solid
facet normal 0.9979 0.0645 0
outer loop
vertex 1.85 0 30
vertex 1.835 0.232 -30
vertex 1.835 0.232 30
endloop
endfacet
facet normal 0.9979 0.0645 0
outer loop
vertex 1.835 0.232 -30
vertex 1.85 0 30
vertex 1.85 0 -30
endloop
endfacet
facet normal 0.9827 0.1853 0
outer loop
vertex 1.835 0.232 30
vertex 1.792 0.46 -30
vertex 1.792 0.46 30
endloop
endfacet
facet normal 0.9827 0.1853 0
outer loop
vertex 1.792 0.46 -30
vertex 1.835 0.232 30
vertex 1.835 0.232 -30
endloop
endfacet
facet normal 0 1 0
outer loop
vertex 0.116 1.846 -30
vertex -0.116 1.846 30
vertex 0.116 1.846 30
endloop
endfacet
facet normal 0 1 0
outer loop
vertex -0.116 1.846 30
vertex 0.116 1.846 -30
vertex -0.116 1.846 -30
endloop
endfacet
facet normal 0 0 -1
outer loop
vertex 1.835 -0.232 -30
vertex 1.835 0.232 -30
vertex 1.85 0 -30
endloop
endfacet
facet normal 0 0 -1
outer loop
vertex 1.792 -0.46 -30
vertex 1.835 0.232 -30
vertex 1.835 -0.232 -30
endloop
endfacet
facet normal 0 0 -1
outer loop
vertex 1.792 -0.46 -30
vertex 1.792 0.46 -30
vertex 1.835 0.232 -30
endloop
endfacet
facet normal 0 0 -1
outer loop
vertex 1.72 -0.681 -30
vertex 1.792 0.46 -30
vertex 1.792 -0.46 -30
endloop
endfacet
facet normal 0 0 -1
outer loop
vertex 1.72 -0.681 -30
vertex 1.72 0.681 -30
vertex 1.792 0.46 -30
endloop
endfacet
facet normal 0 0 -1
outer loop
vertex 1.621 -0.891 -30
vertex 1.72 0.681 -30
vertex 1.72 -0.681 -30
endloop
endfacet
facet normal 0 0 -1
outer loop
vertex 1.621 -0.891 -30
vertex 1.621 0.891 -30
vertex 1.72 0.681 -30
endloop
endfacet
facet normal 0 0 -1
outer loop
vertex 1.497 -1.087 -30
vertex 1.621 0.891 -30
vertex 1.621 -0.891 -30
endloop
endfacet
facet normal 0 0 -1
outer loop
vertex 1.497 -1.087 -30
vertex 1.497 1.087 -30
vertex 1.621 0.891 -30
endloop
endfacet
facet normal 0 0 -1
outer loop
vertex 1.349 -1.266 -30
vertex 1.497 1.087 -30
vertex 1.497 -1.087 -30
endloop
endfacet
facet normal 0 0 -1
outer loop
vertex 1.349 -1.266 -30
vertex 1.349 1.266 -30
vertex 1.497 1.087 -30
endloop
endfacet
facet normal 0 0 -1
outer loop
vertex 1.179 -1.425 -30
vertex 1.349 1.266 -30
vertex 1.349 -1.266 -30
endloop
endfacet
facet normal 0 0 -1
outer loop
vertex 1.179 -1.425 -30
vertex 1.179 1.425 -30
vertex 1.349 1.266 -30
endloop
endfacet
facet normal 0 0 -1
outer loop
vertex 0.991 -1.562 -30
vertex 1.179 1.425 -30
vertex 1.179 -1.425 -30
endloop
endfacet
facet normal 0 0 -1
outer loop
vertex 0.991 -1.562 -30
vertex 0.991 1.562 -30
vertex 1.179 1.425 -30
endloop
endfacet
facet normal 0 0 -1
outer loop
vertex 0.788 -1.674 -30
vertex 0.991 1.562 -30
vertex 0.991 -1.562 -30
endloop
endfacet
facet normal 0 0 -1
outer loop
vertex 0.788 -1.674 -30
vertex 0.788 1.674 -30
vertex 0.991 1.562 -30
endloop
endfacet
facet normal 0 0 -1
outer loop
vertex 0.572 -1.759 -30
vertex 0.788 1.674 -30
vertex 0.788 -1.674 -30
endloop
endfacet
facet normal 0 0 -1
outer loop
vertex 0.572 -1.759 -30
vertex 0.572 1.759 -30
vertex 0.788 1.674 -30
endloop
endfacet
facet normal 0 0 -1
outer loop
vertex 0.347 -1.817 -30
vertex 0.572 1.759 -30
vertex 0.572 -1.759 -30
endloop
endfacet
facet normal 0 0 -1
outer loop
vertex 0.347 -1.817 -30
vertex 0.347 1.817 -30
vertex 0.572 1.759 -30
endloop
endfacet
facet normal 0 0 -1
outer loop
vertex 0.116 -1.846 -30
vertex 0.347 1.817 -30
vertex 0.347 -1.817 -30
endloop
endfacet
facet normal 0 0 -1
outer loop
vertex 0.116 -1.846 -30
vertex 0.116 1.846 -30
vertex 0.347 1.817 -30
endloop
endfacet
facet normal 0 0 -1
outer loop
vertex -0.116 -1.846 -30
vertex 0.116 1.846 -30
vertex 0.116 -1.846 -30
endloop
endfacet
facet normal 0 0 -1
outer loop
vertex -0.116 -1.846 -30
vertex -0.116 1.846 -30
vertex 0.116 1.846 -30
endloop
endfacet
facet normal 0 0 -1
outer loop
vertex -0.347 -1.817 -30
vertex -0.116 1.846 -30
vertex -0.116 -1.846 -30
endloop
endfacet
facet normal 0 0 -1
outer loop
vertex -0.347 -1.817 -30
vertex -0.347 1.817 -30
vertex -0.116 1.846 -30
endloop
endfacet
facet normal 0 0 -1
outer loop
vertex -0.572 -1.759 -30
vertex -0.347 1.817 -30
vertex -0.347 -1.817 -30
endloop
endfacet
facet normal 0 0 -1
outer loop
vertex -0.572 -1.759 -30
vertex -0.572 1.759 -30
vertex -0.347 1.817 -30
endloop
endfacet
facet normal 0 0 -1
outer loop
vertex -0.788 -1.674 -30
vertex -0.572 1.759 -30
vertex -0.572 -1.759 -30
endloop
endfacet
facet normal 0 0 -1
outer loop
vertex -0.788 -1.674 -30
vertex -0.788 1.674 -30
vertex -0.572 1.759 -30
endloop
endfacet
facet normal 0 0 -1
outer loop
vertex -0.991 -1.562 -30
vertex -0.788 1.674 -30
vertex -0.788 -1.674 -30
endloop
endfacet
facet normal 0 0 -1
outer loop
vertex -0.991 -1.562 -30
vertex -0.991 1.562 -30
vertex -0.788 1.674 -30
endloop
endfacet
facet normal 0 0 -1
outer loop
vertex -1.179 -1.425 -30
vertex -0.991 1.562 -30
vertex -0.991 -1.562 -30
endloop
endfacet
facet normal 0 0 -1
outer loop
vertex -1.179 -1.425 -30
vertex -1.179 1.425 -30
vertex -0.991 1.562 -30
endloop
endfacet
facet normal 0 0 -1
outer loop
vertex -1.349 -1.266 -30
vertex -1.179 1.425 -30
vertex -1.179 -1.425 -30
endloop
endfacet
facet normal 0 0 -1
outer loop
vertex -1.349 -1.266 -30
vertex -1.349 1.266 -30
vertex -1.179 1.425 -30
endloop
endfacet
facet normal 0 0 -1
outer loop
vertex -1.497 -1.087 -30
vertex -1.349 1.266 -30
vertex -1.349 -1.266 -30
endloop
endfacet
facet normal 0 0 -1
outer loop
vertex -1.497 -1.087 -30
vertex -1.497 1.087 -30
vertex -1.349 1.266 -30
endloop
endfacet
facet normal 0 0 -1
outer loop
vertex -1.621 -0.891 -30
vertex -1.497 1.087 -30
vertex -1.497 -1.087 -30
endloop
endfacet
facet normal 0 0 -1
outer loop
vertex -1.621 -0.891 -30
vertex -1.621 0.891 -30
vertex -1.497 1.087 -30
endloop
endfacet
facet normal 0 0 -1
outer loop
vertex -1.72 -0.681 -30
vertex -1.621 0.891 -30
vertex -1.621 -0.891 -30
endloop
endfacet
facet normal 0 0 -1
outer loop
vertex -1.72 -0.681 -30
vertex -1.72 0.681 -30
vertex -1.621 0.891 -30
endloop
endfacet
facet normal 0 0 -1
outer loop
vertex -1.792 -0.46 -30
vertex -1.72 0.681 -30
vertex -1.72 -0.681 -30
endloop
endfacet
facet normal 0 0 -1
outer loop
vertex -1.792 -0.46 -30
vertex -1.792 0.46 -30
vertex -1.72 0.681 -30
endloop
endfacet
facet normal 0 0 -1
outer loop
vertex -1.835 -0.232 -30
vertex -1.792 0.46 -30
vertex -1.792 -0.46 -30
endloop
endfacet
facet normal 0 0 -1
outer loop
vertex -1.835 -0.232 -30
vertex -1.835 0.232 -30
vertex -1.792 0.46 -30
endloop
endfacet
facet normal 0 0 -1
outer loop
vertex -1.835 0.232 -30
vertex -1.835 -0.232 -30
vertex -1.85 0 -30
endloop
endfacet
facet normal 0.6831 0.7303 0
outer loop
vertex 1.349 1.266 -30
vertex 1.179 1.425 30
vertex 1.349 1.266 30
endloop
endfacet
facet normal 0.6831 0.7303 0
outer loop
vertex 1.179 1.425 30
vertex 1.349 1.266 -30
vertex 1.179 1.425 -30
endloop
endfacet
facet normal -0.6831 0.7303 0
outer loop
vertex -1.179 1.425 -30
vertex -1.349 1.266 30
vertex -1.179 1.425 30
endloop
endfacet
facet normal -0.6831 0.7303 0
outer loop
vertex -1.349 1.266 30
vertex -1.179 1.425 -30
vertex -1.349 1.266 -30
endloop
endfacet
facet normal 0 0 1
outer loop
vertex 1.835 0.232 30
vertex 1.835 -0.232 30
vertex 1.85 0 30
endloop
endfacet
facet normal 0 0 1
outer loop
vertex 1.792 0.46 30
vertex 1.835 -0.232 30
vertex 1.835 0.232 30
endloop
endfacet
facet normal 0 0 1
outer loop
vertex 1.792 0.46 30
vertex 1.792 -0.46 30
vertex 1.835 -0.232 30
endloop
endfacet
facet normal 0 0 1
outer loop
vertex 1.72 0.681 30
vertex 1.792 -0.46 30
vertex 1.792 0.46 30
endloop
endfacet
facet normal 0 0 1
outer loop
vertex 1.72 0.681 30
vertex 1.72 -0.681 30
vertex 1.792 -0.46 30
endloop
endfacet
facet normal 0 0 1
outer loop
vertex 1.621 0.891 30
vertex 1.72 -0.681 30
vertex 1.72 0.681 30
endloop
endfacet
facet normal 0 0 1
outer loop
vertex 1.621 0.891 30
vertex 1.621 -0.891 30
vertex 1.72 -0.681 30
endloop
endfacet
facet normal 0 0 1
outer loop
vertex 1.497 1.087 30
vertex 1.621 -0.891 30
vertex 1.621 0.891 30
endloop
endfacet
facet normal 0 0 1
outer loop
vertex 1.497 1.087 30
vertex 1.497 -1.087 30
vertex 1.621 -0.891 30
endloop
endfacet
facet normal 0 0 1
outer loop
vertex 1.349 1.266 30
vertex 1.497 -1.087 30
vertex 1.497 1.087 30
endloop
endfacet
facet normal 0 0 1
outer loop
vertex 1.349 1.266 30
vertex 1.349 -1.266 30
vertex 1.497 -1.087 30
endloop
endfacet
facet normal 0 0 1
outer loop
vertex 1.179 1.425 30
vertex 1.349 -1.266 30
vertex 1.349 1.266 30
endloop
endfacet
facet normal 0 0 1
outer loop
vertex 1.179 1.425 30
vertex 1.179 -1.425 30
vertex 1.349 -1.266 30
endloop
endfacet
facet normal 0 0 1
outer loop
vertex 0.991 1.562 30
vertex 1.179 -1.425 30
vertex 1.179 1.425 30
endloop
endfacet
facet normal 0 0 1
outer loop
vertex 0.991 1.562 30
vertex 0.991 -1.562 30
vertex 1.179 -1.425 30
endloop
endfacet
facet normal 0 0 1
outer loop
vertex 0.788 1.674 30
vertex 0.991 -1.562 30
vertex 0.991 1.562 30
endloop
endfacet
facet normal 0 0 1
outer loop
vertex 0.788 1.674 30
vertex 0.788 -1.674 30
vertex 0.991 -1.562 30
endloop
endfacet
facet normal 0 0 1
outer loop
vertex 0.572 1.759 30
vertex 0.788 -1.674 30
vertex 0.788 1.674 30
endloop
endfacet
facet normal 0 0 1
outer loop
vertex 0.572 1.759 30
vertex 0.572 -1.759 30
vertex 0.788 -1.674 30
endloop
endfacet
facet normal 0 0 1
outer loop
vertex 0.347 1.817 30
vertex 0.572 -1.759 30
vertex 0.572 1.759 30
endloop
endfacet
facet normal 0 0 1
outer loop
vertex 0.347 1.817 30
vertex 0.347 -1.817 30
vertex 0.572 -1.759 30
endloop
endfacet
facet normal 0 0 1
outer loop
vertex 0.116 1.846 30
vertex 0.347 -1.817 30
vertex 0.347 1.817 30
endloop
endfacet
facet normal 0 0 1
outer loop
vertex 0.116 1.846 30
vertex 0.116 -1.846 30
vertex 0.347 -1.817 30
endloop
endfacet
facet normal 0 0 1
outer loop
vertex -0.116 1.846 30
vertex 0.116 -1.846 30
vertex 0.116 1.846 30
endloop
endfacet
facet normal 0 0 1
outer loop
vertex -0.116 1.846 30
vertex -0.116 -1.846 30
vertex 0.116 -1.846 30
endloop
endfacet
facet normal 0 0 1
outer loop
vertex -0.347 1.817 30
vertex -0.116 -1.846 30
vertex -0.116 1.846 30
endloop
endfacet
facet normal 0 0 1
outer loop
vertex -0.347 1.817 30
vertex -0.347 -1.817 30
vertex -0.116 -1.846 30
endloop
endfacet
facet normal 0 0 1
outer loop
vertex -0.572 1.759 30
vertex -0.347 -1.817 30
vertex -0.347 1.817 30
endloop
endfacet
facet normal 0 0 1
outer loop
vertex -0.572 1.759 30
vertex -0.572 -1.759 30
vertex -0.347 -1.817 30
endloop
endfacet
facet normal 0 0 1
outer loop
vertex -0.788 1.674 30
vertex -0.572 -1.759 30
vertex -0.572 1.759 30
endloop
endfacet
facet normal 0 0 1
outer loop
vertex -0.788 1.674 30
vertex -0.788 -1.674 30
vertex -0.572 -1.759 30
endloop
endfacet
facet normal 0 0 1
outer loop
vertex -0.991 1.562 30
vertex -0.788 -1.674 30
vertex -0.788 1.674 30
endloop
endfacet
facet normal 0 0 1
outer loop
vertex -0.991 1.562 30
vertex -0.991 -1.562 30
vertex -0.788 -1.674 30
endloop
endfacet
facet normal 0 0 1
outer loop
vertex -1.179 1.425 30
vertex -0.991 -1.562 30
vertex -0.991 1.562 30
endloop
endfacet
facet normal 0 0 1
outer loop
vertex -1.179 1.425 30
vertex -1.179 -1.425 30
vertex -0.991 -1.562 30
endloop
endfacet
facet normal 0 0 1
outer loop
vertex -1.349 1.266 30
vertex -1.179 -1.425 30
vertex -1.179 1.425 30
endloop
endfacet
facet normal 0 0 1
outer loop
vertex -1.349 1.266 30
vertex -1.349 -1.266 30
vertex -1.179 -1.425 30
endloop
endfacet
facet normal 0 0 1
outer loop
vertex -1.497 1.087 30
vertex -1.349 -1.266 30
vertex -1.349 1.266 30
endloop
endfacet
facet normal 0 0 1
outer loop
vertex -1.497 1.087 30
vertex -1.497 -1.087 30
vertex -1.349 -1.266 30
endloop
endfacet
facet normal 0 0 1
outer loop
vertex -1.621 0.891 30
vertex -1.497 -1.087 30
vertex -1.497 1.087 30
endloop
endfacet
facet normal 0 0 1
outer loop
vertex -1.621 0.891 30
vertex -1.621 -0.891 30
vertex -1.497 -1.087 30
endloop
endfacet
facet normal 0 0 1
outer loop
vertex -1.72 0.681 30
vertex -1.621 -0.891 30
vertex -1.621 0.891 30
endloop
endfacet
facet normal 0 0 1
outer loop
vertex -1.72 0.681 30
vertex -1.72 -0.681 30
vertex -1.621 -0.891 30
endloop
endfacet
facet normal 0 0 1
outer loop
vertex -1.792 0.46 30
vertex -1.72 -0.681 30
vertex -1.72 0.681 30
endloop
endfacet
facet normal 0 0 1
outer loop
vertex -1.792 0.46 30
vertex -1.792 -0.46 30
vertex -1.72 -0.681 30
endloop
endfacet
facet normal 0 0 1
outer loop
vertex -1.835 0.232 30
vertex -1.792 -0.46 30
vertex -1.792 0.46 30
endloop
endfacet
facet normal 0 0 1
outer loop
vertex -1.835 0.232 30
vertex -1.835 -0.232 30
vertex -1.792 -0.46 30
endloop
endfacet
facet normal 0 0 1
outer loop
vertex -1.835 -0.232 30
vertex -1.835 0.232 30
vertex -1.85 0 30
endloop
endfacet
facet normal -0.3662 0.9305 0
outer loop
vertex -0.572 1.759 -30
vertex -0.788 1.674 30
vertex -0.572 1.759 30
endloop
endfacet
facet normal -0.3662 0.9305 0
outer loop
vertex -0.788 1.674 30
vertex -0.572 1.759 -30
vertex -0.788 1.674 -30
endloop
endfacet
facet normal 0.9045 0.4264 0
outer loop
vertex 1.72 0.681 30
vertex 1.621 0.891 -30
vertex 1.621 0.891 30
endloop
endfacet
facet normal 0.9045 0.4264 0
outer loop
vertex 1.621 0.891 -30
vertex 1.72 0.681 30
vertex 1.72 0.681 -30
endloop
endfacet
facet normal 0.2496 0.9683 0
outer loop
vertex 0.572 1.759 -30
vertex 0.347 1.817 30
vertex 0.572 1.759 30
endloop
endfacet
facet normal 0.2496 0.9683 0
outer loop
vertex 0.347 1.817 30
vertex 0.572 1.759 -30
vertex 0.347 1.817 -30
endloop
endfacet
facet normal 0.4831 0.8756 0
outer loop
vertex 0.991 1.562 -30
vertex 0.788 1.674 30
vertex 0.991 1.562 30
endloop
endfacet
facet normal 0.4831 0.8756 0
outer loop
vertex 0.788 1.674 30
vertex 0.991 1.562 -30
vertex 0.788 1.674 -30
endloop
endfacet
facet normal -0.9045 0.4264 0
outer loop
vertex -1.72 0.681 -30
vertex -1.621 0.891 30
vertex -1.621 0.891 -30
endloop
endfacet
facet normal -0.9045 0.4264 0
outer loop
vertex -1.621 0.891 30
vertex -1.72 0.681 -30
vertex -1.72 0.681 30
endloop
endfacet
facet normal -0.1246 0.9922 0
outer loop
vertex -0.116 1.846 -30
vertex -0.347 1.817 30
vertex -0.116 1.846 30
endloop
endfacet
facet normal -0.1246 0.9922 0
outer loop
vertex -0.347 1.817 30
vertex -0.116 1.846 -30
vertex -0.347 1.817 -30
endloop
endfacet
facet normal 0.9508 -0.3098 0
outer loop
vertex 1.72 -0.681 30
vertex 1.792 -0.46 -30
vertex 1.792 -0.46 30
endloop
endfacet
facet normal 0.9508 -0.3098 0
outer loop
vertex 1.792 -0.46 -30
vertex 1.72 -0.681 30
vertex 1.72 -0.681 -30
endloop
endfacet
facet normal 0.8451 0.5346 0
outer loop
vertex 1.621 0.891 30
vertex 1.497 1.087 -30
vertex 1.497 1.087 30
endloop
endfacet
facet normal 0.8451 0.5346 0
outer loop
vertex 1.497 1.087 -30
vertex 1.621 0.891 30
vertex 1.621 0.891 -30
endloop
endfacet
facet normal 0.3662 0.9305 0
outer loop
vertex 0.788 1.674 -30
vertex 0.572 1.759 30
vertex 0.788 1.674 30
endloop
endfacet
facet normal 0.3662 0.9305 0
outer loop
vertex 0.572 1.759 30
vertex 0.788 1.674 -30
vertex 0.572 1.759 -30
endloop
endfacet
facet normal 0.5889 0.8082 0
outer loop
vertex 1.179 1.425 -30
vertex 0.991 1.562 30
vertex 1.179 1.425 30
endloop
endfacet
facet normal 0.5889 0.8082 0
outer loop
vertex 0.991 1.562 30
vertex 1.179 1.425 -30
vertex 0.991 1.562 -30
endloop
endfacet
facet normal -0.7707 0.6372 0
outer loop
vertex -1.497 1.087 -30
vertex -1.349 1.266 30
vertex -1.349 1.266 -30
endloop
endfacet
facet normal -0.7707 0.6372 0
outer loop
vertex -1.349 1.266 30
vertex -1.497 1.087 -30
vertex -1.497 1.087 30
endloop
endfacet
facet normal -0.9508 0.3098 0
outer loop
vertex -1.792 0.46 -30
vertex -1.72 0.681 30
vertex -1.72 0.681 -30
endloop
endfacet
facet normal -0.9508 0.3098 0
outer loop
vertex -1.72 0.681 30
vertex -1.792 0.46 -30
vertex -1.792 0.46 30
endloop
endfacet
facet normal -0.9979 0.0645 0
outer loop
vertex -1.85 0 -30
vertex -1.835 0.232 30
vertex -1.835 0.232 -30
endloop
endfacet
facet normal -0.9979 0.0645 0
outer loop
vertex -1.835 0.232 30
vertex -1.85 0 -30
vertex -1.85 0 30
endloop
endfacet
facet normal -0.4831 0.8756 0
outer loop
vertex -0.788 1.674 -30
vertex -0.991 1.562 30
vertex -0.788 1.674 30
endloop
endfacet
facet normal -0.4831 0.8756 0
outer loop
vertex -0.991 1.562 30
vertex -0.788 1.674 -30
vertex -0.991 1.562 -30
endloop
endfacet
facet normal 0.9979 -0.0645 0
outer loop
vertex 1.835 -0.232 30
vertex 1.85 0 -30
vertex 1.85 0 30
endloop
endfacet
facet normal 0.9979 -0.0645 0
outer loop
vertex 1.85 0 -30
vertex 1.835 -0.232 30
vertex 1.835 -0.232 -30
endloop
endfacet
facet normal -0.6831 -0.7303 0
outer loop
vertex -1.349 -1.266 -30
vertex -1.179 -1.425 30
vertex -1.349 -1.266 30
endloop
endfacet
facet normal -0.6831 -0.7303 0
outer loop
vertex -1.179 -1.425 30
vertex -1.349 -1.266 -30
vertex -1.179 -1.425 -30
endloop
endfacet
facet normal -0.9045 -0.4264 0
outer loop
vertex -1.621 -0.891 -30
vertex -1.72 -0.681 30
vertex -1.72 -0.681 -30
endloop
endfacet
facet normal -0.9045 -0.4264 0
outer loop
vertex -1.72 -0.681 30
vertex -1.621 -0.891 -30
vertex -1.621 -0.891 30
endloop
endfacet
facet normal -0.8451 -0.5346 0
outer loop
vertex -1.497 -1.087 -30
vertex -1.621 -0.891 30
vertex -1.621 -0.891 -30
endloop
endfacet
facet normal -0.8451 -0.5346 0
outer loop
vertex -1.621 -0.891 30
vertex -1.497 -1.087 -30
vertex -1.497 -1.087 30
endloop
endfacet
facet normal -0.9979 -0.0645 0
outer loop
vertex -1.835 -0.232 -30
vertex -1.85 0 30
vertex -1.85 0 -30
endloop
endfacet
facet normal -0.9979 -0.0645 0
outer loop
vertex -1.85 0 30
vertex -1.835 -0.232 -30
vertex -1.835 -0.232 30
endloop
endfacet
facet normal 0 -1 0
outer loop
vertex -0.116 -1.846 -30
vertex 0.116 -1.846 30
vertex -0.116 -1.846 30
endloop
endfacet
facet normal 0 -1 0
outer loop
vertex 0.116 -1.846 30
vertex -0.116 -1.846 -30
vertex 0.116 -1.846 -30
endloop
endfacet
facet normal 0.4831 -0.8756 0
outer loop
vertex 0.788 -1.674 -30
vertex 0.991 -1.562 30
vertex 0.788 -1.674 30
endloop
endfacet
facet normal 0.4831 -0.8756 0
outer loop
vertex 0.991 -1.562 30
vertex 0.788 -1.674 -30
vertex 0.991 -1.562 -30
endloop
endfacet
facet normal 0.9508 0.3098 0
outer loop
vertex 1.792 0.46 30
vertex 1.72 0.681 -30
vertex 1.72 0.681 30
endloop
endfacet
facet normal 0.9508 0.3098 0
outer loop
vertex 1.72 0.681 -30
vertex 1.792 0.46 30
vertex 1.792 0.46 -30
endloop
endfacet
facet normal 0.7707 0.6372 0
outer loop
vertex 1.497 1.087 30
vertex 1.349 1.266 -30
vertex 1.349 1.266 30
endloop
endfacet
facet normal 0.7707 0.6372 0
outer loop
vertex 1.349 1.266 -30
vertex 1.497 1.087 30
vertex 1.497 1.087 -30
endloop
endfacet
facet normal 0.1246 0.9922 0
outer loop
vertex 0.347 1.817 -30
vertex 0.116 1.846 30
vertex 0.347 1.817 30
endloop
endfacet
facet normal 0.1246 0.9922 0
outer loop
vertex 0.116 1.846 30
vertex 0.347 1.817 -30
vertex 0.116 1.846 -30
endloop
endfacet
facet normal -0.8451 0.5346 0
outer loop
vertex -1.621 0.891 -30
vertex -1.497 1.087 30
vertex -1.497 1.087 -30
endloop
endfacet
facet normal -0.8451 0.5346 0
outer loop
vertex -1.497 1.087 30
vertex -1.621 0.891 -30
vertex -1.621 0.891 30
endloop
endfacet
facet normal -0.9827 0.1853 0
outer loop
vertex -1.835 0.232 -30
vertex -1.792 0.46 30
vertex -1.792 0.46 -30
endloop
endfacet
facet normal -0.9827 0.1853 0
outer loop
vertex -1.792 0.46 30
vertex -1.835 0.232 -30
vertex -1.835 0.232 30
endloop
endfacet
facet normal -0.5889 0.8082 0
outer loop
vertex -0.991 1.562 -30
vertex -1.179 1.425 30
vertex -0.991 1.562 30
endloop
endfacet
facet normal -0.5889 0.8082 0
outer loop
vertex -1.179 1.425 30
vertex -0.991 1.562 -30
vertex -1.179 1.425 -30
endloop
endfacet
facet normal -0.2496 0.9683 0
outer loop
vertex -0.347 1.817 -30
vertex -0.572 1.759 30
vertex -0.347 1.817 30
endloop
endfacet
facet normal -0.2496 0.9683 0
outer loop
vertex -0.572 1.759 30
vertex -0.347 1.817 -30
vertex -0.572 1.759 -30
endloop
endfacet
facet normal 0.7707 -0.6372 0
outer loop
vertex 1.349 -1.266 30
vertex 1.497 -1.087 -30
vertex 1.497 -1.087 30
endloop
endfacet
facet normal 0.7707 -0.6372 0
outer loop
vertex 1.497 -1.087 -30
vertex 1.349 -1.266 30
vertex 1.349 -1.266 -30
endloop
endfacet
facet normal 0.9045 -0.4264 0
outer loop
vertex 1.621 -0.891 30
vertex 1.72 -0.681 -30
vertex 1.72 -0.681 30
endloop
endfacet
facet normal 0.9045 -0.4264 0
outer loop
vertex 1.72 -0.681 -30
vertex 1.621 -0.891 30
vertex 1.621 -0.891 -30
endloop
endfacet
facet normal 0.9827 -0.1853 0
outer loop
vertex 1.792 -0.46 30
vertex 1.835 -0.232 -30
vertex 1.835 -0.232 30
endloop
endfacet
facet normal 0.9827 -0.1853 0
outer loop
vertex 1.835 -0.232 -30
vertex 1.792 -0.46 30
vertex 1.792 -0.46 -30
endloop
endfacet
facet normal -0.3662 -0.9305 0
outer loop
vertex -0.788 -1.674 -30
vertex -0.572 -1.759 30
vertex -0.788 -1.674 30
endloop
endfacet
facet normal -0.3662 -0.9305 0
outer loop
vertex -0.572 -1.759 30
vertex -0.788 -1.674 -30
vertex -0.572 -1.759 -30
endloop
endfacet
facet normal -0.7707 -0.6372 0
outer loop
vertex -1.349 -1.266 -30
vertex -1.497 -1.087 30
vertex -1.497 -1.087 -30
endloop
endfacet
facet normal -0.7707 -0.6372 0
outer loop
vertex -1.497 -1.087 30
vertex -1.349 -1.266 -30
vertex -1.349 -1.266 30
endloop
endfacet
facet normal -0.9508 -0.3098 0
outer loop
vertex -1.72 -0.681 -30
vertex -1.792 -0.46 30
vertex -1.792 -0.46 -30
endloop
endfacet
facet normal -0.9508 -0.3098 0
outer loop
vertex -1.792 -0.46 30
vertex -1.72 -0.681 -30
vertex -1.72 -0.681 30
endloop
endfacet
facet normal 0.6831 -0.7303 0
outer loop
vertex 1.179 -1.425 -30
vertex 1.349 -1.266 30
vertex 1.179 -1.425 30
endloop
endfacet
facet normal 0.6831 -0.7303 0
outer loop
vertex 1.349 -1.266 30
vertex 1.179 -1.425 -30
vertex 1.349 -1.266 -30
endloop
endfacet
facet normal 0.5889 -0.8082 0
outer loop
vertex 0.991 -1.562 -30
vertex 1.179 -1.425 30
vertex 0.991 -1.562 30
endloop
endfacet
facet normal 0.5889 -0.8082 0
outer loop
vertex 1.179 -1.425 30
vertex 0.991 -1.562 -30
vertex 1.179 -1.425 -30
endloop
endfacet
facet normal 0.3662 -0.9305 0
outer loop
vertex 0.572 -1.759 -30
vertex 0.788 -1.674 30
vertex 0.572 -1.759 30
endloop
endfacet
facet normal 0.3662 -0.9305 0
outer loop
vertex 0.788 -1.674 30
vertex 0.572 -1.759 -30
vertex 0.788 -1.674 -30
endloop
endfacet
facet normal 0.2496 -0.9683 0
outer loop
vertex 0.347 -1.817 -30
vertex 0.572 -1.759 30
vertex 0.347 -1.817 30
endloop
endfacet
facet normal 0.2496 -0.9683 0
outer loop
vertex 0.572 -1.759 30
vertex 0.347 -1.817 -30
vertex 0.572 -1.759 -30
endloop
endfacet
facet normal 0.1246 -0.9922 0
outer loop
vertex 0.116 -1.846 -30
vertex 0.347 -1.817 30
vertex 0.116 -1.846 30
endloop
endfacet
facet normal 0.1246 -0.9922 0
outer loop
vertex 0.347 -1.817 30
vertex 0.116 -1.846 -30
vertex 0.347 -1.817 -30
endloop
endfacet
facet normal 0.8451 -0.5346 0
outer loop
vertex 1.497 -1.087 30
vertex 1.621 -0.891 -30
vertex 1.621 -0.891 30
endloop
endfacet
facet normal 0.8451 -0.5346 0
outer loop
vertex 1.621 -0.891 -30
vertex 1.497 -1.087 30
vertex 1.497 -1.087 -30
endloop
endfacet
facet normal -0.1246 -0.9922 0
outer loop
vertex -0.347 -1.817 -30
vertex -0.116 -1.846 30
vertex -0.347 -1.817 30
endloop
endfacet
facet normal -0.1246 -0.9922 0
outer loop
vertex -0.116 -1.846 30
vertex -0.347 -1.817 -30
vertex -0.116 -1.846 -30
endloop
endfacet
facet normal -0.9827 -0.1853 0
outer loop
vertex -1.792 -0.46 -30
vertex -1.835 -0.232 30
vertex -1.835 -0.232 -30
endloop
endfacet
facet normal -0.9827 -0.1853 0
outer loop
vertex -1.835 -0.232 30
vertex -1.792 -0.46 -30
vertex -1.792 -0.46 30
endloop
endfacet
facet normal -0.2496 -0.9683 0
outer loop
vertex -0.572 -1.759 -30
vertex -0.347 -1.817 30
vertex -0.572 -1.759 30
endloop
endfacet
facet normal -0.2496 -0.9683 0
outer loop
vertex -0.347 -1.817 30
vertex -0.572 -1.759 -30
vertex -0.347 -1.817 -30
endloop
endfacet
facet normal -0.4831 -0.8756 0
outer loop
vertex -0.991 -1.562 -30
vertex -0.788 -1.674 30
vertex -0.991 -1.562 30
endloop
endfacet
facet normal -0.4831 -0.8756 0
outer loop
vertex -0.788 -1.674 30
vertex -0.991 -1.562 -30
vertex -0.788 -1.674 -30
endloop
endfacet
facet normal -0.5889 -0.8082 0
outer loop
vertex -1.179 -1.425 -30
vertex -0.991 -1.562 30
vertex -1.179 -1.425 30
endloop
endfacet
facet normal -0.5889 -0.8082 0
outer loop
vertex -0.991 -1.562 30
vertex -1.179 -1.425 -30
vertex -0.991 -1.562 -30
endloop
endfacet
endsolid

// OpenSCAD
$fn = 50;


difference() {
	union() {
		translate(v = [0, 0, -30.0000000000]) {
			cylinder(h = 60, r = 1.8500000000);
		}
	}
	union() {
		translate(v = [0, 0, -100.0000000000]) {
			cylinder(h = 200, r = 0);
		}
	}
}
